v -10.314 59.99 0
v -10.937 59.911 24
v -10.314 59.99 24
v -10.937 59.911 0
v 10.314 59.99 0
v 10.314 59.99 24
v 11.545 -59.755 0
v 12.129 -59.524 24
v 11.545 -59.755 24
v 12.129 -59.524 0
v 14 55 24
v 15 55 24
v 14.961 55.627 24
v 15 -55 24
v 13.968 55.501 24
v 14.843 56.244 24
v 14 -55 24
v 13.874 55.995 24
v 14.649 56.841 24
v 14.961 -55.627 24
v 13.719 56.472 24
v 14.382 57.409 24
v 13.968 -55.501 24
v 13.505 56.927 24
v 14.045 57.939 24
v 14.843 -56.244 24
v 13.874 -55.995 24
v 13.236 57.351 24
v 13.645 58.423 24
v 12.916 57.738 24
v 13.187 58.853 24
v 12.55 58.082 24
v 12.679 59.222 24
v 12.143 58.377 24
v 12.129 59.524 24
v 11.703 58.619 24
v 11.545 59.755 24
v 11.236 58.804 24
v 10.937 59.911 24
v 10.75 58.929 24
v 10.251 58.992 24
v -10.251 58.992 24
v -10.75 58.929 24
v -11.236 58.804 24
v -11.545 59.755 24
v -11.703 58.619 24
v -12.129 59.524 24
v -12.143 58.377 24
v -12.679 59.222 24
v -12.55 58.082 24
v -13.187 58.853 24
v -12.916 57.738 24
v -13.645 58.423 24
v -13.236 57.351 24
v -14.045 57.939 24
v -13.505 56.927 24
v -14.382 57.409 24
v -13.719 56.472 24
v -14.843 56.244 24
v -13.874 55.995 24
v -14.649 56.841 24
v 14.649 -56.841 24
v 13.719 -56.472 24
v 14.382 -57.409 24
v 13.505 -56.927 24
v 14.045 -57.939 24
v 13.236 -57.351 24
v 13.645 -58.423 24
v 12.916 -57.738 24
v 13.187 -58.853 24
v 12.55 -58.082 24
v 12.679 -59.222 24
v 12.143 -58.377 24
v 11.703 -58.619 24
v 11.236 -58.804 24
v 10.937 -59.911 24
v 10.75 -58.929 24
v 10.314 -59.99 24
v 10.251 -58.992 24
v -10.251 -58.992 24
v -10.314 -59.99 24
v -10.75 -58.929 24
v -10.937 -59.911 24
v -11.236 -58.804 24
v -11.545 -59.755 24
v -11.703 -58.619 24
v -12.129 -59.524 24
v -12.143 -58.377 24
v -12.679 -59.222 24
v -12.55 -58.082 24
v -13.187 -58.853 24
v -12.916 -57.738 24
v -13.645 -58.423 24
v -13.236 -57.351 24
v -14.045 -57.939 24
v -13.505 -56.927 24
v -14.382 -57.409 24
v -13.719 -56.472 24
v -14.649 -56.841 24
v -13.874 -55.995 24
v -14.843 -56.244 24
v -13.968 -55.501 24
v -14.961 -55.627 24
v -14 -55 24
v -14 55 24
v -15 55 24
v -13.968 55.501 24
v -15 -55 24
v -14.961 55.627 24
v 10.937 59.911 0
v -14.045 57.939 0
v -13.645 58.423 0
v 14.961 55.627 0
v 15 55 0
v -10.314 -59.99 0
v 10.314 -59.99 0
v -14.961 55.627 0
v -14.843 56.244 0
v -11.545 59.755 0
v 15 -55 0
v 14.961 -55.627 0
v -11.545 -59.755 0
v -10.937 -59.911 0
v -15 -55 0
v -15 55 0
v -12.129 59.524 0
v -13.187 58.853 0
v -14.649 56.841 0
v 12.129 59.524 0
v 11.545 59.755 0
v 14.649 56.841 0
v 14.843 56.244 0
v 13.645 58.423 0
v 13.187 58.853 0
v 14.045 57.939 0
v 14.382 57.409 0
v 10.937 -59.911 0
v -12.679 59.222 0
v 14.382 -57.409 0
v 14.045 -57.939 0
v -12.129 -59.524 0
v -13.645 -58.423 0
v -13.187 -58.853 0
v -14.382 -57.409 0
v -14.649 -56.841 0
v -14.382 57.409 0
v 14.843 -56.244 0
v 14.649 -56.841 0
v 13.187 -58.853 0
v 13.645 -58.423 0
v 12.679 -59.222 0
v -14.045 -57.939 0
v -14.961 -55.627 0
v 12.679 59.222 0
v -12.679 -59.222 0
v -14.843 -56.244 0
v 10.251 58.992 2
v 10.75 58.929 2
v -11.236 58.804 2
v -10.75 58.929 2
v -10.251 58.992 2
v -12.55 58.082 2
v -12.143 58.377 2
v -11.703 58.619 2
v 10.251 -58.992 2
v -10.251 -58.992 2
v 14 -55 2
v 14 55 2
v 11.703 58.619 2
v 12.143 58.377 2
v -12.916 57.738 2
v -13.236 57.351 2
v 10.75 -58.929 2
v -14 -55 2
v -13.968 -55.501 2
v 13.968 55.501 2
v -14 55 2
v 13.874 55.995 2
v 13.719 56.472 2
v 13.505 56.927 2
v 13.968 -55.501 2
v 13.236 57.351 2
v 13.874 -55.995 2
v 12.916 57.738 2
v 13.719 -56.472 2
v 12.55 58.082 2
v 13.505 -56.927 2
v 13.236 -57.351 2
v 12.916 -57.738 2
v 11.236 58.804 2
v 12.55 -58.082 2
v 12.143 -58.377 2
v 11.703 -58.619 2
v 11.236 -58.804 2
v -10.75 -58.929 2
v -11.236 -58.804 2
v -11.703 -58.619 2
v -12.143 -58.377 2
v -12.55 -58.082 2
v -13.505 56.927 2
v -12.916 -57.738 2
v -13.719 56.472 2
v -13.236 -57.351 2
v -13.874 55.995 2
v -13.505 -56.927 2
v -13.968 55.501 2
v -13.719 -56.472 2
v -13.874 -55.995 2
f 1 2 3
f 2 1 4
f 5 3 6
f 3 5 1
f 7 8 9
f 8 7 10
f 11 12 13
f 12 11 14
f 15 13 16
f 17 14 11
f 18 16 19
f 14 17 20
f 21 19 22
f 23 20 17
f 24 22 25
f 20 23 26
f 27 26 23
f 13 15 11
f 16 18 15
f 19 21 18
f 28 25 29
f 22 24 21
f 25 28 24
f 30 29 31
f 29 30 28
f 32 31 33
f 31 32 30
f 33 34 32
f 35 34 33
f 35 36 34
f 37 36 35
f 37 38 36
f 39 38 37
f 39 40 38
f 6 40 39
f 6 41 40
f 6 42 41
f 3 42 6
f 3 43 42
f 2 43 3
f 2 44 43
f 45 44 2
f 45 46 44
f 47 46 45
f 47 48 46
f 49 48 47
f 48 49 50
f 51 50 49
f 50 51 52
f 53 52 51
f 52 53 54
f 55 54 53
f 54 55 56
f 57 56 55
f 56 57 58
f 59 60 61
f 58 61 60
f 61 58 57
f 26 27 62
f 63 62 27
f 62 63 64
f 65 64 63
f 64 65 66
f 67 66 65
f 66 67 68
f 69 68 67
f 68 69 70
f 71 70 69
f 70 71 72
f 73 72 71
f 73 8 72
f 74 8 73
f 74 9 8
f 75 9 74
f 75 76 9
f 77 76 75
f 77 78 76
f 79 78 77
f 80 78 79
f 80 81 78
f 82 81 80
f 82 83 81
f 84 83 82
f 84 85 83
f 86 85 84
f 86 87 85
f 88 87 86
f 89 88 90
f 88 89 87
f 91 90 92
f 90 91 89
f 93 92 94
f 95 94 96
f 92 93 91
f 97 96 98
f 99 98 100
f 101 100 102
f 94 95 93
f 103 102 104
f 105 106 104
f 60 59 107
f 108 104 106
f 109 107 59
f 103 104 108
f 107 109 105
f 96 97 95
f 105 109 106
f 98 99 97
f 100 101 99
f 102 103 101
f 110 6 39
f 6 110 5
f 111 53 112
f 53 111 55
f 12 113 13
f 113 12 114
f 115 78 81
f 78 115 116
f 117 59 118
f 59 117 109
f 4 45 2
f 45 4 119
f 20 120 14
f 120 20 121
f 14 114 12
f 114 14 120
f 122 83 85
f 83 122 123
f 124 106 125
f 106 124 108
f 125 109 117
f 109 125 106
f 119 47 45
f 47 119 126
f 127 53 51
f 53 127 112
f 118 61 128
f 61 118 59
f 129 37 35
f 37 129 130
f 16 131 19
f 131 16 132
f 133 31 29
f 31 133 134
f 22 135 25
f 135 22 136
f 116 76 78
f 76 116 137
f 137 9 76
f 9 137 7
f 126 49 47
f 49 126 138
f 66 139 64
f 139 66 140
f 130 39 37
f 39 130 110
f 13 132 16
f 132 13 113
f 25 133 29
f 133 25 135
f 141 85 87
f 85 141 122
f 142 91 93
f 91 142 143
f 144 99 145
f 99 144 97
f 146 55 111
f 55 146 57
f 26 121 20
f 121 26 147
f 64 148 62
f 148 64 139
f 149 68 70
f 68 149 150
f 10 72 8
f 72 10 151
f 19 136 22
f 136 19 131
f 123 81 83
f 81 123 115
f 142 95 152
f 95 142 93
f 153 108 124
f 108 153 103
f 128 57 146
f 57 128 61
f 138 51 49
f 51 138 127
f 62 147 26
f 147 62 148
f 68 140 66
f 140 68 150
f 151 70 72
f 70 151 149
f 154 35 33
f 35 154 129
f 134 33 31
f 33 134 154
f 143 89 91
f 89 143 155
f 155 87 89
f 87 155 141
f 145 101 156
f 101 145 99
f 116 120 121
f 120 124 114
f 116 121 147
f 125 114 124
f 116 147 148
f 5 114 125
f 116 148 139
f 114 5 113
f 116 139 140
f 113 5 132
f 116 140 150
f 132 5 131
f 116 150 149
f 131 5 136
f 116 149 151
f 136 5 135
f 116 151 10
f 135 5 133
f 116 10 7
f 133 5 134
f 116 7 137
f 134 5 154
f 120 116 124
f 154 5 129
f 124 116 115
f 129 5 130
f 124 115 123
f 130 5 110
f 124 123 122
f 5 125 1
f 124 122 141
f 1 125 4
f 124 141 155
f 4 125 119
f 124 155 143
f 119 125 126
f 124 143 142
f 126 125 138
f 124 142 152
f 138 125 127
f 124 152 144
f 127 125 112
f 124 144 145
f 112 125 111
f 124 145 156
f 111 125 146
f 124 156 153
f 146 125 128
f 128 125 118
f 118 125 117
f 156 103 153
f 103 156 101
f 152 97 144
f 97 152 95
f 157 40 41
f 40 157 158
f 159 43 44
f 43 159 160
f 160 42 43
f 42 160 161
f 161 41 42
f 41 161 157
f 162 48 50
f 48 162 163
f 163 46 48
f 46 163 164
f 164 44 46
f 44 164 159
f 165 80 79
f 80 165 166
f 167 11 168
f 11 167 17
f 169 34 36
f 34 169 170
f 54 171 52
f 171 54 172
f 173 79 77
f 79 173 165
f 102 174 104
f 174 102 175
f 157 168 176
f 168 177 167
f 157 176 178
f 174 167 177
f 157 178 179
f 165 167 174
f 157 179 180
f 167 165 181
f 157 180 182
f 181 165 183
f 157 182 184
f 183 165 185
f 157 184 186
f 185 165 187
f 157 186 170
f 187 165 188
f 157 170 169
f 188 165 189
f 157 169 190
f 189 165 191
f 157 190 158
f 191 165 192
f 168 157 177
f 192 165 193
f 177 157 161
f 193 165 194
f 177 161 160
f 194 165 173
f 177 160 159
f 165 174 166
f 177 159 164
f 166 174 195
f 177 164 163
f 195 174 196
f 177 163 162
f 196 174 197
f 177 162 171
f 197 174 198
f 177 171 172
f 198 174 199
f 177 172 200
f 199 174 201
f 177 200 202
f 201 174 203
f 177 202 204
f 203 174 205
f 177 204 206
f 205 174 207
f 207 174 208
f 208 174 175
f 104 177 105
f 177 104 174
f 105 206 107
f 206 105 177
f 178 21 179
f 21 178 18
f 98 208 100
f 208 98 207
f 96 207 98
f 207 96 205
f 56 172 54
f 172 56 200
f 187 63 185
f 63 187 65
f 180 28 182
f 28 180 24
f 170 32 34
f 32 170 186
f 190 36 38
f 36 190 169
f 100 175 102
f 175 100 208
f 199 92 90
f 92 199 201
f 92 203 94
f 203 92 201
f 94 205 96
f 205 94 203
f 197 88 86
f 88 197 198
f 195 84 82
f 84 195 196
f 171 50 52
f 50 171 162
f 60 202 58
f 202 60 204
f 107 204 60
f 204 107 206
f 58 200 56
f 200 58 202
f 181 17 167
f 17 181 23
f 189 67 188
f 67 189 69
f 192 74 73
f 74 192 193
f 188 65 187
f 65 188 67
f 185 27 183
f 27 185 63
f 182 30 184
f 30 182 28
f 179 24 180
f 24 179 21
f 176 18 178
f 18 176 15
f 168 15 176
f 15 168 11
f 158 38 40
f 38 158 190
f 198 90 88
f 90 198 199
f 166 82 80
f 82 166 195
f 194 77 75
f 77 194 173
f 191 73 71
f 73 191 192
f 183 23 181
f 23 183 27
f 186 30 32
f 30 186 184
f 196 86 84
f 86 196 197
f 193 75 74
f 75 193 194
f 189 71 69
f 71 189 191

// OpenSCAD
$fn = 50;


difference() {
	union() {
		hull() {
			translate(v = [-10.0000000000, 55.0000000000, 0]) {
				cylinder(h = 24, r = 5);
			}
			translate(v = [10.0000000000, 55.0000000000, 0]) {
				cylinder(h = 24, r = 5);
			}
			translate(v = [-10.0000000000, -55.0000000000, 0]) {
				cylinder(h = 24, r = 5);
			}
			translate(v = [10.0000000000, -55.0000000000, 0]) {
				cylinder(h = 24, r = 5);
			}
		}
	}
	union() {
		translate(v = [0, 0, 2]) {
			hull() {
				translate(v = [-10.0000000000, 55.0000000000, 0]) {
					cylinder(h = 22, r = 4);
				}
				translate(v = [10.0000000000, 55.0000000000, 0]) {
					cylinder(h = 22, r = 4);
				}
				translate(v = [-10.0000000000, -55.0000000000, 0]) {
					cylinder(h = 22, r = 4);
				}
				translate(v = [10.0000000000, -55.0000000000, 0]) {
					cylinder(h = 22, r = 4);
				}
			}
		}
	}
}
